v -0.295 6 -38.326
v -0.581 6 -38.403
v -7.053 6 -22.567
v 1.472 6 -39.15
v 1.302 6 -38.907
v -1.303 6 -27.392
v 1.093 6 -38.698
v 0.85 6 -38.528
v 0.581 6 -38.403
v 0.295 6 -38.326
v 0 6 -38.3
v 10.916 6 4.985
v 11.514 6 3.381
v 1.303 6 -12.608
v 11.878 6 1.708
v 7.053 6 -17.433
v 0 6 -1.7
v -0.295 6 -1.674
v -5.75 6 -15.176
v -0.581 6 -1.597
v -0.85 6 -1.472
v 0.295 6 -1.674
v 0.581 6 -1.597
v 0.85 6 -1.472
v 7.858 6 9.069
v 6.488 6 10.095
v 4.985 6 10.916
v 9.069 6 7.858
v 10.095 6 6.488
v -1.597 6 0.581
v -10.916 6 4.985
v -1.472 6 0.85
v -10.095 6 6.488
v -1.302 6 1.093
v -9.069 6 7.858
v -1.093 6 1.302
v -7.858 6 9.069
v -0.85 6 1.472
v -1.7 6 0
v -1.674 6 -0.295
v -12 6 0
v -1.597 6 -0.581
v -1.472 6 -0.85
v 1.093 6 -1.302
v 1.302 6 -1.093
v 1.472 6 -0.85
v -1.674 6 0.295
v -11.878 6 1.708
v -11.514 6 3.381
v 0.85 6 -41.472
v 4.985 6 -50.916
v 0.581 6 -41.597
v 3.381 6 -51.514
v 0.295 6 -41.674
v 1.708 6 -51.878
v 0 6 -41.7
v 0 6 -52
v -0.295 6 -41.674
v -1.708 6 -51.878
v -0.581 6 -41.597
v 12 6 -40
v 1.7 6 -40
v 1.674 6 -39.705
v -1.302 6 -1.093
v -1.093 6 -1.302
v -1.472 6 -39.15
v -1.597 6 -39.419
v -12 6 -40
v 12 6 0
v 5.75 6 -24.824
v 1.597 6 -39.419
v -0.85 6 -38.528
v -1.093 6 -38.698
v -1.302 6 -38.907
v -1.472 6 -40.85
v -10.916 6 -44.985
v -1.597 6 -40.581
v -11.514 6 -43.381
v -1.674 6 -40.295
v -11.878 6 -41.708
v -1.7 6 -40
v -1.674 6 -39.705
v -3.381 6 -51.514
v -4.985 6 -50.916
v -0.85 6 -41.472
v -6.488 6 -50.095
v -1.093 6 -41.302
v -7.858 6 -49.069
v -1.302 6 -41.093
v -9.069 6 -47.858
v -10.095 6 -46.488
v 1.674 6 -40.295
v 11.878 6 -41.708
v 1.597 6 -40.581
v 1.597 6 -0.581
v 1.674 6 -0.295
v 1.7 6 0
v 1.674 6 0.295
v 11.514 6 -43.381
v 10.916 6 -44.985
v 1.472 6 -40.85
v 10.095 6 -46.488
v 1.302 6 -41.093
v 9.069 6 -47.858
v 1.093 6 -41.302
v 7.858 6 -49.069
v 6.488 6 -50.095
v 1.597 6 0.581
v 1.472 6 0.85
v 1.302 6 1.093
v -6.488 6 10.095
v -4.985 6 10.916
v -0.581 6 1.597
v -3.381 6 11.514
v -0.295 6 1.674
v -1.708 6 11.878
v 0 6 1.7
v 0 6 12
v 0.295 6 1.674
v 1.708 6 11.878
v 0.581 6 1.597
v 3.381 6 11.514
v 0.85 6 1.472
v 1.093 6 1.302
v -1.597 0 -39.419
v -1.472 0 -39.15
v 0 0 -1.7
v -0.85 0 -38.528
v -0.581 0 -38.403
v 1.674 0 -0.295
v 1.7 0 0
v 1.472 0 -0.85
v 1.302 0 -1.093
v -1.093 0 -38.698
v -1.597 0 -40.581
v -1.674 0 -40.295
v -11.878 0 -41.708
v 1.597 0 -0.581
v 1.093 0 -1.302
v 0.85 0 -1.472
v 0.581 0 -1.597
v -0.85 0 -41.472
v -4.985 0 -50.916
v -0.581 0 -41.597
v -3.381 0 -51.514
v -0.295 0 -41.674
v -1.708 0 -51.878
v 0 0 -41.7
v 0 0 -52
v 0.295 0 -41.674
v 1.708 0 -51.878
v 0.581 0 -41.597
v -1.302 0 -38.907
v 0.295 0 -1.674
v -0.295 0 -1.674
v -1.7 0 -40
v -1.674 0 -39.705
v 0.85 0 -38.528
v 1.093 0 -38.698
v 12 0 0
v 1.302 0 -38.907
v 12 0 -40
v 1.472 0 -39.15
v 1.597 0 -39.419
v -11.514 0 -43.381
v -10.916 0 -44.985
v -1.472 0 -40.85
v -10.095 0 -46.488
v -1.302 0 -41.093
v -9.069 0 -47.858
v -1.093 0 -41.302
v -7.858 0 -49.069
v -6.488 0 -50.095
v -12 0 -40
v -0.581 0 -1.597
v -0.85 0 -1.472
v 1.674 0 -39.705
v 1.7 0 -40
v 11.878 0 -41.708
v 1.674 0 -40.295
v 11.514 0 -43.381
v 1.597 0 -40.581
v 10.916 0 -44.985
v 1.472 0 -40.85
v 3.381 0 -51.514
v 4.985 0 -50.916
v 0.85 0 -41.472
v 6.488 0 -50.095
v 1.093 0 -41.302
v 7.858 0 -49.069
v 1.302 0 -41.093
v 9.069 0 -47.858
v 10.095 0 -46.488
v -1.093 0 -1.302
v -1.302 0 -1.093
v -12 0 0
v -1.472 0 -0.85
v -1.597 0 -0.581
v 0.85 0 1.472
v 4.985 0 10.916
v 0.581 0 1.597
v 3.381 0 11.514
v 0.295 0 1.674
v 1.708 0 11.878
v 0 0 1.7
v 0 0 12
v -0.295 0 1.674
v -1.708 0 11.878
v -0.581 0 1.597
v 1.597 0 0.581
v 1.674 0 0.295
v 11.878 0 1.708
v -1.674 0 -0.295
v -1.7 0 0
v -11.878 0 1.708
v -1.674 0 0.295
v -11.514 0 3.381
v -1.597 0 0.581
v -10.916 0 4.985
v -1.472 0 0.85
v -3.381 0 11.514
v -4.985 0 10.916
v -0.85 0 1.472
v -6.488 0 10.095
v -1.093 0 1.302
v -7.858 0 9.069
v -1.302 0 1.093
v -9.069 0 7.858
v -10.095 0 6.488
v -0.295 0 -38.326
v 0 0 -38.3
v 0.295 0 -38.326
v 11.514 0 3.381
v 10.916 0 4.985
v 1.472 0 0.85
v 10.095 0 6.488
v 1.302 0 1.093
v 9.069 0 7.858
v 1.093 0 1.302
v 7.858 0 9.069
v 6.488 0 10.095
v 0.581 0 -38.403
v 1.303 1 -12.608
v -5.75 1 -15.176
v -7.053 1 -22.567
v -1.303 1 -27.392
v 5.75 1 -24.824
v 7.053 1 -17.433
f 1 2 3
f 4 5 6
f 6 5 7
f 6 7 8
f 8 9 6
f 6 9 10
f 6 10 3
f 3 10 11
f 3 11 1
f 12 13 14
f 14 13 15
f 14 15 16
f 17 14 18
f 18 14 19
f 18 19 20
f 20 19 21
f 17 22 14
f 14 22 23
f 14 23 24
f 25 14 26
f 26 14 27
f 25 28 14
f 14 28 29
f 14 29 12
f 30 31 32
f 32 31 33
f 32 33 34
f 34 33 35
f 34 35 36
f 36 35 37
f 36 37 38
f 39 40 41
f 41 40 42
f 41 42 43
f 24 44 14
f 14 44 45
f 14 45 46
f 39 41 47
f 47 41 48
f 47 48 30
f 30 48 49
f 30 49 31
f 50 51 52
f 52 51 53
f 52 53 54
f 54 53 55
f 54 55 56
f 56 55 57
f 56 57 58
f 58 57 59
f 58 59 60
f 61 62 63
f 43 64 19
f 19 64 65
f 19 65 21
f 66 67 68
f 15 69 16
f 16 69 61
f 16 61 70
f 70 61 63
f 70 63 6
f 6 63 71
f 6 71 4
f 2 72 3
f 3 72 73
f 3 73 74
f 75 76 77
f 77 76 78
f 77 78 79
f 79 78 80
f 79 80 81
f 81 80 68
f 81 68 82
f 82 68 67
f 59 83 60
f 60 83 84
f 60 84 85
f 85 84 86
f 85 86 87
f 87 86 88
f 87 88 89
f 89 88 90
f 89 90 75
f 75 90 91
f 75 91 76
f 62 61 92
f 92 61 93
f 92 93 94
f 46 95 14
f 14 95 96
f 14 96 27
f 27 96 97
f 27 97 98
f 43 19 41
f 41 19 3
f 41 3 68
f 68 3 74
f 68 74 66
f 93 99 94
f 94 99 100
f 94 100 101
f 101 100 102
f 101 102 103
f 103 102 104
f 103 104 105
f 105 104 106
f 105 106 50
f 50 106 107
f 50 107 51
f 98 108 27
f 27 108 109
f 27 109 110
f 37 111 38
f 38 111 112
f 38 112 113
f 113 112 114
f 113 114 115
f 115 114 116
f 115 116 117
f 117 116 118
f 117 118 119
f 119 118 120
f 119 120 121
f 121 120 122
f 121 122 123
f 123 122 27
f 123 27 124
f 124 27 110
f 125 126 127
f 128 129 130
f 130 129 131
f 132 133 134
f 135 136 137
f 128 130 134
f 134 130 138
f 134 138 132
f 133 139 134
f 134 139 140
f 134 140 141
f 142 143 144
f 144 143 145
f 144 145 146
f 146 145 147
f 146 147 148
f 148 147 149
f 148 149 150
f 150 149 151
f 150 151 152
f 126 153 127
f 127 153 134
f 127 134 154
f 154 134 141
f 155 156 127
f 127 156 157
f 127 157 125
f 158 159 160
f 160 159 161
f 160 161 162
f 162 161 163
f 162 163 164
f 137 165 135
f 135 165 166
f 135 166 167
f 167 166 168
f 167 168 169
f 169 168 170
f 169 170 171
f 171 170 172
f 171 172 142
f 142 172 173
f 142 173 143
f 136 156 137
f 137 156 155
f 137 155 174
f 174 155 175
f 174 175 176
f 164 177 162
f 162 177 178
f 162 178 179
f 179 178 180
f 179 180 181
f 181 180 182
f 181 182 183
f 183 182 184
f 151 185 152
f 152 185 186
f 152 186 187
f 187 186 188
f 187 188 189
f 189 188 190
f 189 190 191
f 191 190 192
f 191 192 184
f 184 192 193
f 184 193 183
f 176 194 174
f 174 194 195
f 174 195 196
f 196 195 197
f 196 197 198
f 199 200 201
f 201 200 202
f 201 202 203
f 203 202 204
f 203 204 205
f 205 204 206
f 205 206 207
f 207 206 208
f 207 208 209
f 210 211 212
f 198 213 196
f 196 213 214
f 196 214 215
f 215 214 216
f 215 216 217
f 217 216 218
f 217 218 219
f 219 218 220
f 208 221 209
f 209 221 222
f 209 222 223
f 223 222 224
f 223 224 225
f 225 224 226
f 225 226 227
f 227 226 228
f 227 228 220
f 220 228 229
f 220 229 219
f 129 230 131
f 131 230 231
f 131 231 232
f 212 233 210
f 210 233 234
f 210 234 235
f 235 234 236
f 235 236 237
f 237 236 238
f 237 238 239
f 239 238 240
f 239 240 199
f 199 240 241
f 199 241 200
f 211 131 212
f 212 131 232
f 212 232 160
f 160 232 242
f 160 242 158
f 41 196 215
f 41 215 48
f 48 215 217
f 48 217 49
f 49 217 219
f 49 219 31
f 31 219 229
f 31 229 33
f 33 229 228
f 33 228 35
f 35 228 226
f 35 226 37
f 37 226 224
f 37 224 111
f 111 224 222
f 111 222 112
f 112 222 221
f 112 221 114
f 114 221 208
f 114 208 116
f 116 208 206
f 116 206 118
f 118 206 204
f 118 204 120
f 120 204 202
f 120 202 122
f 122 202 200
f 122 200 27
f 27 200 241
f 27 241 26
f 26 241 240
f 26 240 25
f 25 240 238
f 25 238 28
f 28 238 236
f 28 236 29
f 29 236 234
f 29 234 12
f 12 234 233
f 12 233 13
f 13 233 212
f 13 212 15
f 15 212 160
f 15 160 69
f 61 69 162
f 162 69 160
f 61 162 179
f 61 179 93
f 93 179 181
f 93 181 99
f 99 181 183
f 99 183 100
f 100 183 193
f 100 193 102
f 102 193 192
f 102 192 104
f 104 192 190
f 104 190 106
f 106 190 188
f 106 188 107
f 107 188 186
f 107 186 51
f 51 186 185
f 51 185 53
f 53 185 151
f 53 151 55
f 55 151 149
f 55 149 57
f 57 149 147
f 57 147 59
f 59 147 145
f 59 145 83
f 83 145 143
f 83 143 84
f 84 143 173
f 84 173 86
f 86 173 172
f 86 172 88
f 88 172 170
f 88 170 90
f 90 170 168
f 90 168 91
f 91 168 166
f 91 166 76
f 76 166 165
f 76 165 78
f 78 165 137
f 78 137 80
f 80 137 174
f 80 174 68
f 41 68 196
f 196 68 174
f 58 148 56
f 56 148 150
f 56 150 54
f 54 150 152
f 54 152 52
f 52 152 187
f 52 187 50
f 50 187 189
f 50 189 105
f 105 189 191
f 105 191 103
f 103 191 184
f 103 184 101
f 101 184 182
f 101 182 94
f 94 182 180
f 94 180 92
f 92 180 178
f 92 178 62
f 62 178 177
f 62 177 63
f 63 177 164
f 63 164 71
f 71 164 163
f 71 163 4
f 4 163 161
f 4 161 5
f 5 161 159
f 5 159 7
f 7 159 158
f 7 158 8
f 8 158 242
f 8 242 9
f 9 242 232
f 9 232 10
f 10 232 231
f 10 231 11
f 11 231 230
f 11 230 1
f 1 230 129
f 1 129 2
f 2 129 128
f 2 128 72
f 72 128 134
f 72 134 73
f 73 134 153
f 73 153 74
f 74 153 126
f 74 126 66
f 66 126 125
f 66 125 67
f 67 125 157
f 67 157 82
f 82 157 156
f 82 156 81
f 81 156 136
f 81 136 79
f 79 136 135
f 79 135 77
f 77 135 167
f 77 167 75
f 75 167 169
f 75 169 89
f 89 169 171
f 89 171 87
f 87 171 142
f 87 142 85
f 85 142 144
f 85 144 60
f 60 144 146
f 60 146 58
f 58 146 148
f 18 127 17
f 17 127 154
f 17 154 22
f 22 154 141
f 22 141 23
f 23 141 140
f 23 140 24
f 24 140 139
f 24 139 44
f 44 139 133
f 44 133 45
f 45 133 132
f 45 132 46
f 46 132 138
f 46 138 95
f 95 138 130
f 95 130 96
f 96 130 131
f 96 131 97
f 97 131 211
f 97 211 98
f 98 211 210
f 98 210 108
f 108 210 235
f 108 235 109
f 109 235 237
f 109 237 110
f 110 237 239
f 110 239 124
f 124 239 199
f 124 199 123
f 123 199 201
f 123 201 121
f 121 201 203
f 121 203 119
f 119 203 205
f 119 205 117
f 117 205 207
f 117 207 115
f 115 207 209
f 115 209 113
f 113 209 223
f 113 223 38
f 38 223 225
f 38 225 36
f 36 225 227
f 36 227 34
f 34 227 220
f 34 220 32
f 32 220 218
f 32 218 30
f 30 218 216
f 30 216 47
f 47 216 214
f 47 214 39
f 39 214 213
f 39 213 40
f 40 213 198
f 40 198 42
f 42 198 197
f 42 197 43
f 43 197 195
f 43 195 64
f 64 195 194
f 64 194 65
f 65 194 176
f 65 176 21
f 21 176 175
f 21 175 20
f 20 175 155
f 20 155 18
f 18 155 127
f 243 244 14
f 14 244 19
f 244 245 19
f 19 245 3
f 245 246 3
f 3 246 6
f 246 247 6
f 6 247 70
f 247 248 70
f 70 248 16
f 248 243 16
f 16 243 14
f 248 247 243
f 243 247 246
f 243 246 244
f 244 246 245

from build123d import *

# Parameters (mm, degrees)
SKETCH1_R           = 1.7
BOSS_EXTRUDE1_DEPTH = 6
CUT_EXTRUDE1_DEPTH  = 5


with BuildPart() as part:
    # Sketch1 → Boss-Extrude1 (new body)
    with BuildSketch(Plane(origin=(0, 0, 0), x_dir=(1, 0, 0), z_dir=(0, 1, 0))):
        with BuildLine():
            Line((-12, 0), (-12, 40))
            ThreePointArc((-12, 40), (0, 52), (12, 40))
            Line((12, 40), (12, 0))
            ThreePointArc((12, 0), (0, -12), (-12, 0))
        make_face()
        with Locations((0, 40)):
            Circle(SKETCH1_R, mode=Mode.SUBTRACT)
        Circle(SKETCH1_R, mode=Mode.SUBTRACT)
    extrude(amount=BOSS_EXTRUDE1_DEPTH)

    # Sketch2 → Cut-Extrude1 (cut)
    with BuildSketch(Plane(origin=(0, 6, 0), x_dir=(1, 0, 0), z_dir=(0, 1, 0))):
        Polygon((1.303325688, 12.608472723), (7.052913238, 17.432949516), (5.749587551, 24.824476793), (-1.303325688, 27.391527277), (-7.052913238, 22.567050484), (-5.749587551, 15.175523207), align=None)
    extrude(amount=-CUT_EXTRUDE1_DEPTH, mode=Mode.SUBTRACT)


solid = part.part
